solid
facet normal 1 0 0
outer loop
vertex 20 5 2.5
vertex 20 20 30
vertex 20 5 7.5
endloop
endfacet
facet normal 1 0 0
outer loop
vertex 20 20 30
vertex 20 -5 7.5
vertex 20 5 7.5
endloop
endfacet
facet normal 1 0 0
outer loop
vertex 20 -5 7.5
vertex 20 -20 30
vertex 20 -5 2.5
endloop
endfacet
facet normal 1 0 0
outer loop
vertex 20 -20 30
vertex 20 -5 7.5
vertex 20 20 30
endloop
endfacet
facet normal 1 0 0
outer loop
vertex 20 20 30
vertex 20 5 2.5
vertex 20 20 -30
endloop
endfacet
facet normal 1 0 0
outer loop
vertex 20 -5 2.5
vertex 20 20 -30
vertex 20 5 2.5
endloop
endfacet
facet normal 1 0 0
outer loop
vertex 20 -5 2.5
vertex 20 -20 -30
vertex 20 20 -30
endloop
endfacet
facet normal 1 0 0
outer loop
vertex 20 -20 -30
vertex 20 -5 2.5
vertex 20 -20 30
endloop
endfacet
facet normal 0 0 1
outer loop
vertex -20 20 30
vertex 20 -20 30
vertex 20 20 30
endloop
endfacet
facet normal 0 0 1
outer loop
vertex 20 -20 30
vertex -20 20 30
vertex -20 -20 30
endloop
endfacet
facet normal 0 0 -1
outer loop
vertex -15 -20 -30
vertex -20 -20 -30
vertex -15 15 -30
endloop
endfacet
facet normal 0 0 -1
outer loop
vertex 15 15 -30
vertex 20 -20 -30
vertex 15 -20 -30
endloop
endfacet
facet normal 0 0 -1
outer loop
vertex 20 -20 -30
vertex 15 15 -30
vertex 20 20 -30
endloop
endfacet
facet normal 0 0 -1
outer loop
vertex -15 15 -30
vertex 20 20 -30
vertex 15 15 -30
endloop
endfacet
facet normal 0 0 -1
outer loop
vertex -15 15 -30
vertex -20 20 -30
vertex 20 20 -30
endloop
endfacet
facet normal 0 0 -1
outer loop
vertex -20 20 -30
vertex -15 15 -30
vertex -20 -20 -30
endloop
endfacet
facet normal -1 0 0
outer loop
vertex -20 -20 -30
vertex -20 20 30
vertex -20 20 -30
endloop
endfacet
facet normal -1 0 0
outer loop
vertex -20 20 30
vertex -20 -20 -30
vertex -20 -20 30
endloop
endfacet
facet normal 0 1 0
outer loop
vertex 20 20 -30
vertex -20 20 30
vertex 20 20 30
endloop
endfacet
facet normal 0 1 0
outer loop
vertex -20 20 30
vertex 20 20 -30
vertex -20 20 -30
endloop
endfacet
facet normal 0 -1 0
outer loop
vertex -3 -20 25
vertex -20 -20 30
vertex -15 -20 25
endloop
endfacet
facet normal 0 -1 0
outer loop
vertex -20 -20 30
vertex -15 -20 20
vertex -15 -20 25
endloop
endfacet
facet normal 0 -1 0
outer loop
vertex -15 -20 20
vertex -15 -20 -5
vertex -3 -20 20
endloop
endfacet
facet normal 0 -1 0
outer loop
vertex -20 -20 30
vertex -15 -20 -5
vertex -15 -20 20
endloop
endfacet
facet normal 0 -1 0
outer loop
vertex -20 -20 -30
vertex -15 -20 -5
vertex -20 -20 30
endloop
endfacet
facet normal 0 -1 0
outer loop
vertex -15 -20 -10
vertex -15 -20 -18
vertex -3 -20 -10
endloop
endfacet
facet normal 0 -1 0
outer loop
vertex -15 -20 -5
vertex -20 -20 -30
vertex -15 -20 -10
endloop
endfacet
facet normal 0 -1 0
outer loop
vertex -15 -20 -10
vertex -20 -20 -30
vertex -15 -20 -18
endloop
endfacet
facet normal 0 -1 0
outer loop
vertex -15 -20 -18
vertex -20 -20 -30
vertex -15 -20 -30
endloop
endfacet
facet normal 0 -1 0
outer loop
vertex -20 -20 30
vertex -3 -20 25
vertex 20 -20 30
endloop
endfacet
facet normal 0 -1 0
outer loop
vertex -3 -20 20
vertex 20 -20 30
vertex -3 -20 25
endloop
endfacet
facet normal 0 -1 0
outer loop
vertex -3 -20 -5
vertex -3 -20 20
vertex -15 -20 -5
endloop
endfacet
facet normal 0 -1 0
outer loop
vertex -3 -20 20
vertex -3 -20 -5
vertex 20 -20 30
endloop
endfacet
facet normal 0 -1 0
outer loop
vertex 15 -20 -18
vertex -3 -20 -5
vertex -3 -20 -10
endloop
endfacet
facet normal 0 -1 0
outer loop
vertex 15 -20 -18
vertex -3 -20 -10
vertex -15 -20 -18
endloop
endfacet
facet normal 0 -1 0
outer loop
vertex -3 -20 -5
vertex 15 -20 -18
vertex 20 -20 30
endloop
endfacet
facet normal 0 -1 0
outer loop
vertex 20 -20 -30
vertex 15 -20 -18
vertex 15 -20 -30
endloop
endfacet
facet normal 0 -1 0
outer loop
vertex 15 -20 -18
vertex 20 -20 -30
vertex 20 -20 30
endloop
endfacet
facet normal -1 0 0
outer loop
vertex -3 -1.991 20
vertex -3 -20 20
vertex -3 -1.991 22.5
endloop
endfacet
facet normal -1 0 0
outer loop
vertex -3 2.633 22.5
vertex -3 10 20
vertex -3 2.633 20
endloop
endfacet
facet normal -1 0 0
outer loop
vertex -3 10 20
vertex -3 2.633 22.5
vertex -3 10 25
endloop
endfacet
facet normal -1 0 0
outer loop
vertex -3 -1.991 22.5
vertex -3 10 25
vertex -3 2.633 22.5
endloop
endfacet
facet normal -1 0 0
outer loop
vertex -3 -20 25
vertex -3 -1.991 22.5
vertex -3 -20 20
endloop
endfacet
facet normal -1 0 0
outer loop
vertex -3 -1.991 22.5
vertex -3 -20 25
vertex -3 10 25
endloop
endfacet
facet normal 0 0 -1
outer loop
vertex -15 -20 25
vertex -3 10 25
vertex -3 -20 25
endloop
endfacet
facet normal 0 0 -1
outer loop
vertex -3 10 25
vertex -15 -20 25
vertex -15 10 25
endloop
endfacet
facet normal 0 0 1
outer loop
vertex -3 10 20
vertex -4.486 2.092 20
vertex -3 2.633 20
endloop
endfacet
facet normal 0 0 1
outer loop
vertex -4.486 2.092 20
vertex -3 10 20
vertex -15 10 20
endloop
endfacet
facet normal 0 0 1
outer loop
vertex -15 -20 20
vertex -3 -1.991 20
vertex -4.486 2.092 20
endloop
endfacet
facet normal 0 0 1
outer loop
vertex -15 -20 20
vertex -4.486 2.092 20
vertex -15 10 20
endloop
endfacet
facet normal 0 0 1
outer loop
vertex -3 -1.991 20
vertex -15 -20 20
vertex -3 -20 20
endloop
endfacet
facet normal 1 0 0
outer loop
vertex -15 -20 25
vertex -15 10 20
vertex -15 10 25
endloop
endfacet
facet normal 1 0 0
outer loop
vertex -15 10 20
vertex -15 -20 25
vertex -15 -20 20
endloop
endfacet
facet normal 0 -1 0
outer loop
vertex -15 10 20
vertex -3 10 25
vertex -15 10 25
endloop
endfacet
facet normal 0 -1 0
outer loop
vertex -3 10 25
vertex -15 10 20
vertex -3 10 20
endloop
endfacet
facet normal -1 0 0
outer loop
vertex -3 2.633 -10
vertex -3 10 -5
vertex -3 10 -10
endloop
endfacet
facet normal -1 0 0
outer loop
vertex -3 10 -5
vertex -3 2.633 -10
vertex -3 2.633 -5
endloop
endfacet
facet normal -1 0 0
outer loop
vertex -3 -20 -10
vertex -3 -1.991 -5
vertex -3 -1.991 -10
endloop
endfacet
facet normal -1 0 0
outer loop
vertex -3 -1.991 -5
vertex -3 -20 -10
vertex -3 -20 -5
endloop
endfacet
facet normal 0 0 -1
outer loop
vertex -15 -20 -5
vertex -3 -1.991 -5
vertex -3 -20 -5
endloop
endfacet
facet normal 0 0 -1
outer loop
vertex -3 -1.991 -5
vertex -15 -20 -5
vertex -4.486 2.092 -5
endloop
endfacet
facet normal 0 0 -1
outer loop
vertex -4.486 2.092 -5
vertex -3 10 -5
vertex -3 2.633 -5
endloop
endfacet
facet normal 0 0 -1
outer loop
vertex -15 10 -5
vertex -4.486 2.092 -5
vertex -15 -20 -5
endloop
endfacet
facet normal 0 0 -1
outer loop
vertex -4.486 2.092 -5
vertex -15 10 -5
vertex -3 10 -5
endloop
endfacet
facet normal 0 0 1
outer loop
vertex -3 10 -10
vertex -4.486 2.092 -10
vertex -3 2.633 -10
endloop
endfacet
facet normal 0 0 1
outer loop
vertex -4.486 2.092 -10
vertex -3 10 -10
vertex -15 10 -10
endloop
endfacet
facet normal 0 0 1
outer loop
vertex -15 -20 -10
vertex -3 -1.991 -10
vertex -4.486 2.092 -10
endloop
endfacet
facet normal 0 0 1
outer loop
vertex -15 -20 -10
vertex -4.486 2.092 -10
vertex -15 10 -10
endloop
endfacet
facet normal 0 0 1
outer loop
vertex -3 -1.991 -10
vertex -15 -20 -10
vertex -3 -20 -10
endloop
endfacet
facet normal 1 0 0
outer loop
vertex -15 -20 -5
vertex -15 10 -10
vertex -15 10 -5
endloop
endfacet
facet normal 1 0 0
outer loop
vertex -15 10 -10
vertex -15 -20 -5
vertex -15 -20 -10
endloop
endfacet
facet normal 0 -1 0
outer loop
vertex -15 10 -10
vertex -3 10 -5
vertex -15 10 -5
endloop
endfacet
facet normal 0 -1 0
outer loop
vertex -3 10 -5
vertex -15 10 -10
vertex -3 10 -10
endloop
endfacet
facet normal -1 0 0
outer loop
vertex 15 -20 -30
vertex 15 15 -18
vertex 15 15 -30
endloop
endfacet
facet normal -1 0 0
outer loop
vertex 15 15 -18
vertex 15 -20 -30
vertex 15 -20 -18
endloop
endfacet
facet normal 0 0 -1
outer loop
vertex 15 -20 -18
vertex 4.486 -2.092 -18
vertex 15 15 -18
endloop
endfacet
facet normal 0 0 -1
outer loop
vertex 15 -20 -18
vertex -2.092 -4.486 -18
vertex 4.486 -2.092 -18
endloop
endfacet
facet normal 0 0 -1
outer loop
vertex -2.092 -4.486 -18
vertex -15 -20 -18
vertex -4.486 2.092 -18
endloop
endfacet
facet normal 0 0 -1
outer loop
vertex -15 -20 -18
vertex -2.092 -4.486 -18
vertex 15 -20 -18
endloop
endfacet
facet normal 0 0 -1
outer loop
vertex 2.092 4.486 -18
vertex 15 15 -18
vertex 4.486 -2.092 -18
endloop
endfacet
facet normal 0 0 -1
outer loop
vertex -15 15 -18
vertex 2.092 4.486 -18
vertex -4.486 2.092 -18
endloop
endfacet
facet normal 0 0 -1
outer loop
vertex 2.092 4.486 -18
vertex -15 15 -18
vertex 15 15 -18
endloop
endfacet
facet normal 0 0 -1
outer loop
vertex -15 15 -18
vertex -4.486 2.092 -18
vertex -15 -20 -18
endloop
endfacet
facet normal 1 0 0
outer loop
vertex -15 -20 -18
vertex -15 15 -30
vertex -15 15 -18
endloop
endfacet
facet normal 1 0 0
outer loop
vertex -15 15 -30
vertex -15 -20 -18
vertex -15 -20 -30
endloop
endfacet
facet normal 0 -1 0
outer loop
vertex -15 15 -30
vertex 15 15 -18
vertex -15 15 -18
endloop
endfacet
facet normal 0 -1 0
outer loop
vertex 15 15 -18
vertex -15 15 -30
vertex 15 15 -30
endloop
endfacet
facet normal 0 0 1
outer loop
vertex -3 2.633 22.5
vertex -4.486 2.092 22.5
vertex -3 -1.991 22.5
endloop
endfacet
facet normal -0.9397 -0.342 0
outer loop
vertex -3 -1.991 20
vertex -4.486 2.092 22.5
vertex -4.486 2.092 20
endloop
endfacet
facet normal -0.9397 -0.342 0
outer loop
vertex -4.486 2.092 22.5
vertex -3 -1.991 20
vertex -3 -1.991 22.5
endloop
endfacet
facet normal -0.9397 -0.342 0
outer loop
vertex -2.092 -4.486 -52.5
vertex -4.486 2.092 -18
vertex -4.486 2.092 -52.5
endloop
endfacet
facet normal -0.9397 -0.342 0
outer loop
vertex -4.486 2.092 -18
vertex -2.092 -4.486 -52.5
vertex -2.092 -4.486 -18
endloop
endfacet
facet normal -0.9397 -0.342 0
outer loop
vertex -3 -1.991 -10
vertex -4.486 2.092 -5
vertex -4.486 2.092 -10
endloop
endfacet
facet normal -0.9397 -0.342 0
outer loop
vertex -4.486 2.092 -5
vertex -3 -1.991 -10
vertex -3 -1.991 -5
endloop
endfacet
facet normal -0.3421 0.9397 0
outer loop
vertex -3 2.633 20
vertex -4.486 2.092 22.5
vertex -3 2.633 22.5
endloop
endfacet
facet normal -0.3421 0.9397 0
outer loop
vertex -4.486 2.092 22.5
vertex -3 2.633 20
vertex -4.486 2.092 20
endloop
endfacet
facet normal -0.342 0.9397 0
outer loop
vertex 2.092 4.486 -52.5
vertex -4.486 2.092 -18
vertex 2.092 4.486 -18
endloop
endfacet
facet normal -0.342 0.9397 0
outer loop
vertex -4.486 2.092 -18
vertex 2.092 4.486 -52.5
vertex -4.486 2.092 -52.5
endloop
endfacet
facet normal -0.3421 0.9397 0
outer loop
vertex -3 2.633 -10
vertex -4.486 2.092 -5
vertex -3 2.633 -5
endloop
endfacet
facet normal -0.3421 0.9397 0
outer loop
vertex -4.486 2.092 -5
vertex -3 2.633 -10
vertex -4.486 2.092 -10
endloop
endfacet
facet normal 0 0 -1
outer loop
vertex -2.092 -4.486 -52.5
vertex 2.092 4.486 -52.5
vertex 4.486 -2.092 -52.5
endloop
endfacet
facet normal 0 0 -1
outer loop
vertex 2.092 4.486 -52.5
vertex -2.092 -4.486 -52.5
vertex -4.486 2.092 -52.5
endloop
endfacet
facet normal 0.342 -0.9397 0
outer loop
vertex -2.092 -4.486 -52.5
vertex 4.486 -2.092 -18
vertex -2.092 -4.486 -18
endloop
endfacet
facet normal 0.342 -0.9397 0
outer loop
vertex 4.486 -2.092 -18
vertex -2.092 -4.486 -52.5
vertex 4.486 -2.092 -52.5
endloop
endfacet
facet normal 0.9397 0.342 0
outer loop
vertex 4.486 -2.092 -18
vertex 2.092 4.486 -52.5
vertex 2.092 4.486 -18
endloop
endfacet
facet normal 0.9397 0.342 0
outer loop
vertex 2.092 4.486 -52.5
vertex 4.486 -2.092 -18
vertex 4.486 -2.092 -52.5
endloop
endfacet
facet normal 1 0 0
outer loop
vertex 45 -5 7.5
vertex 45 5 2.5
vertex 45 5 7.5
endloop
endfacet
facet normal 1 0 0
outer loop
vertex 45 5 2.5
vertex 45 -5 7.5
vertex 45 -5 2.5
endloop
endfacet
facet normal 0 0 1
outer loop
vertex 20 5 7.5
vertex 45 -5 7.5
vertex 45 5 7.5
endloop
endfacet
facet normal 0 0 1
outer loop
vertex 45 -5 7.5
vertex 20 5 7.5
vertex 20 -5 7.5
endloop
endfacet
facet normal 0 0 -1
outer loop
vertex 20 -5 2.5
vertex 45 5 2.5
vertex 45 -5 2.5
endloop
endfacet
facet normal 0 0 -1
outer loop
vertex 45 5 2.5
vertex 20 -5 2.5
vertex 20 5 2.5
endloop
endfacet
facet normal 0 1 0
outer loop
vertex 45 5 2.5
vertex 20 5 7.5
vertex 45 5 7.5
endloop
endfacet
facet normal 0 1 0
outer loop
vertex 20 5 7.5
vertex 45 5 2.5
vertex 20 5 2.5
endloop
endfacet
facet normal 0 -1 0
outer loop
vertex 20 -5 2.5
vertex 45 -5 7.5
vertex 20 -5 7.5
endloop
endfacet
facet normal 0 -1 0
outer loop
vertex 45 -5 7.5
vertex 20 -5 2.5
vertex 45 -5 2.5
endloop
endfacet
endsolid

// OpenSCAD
// Main block
module main_block() {
    difference() {
        // Base cuboid
        cube([40, 40, 60], center = true);
        
        // Front face cutouts
        translate([-15, -20, 20]) cube([12, 30, 5], center = false); // Resized and repositioned top slot
        translate([-15, -20, -10]) cube([12, 30, 5], center = false); // Resized and repositioned bottom slot
        translate([-15, -20, -30]) cube([30, 35, 12], center = false); // Resized and repositioned center cutout
        
        // Top opening
        translate([-20, -20, 30]) cube([50, 60, 10], center = false); // Widened top opening
    }
}

// Angled support beam
module angled_support_beam() {
    rotate([0, 0, 20]) translate([0, 0, -15]) cube([7, 7, 75], center = true); // Adjusted angle, thickness, and length
}

// Protruding rectangular arm
module protruding_rectangular_arm() {
    translate([20, 0, 5]) cube([50, 10, 5], center = true); // Lengthened and repositioned higher
}

// Assemble the model
module flexible_coupling() {
    main_block();
    translate([0, 0, 0]) angled_support_beam();
    translate([0, 0, 0]) protruding_rectangular_arm();
}

// Render the model
flexible_coupling();
